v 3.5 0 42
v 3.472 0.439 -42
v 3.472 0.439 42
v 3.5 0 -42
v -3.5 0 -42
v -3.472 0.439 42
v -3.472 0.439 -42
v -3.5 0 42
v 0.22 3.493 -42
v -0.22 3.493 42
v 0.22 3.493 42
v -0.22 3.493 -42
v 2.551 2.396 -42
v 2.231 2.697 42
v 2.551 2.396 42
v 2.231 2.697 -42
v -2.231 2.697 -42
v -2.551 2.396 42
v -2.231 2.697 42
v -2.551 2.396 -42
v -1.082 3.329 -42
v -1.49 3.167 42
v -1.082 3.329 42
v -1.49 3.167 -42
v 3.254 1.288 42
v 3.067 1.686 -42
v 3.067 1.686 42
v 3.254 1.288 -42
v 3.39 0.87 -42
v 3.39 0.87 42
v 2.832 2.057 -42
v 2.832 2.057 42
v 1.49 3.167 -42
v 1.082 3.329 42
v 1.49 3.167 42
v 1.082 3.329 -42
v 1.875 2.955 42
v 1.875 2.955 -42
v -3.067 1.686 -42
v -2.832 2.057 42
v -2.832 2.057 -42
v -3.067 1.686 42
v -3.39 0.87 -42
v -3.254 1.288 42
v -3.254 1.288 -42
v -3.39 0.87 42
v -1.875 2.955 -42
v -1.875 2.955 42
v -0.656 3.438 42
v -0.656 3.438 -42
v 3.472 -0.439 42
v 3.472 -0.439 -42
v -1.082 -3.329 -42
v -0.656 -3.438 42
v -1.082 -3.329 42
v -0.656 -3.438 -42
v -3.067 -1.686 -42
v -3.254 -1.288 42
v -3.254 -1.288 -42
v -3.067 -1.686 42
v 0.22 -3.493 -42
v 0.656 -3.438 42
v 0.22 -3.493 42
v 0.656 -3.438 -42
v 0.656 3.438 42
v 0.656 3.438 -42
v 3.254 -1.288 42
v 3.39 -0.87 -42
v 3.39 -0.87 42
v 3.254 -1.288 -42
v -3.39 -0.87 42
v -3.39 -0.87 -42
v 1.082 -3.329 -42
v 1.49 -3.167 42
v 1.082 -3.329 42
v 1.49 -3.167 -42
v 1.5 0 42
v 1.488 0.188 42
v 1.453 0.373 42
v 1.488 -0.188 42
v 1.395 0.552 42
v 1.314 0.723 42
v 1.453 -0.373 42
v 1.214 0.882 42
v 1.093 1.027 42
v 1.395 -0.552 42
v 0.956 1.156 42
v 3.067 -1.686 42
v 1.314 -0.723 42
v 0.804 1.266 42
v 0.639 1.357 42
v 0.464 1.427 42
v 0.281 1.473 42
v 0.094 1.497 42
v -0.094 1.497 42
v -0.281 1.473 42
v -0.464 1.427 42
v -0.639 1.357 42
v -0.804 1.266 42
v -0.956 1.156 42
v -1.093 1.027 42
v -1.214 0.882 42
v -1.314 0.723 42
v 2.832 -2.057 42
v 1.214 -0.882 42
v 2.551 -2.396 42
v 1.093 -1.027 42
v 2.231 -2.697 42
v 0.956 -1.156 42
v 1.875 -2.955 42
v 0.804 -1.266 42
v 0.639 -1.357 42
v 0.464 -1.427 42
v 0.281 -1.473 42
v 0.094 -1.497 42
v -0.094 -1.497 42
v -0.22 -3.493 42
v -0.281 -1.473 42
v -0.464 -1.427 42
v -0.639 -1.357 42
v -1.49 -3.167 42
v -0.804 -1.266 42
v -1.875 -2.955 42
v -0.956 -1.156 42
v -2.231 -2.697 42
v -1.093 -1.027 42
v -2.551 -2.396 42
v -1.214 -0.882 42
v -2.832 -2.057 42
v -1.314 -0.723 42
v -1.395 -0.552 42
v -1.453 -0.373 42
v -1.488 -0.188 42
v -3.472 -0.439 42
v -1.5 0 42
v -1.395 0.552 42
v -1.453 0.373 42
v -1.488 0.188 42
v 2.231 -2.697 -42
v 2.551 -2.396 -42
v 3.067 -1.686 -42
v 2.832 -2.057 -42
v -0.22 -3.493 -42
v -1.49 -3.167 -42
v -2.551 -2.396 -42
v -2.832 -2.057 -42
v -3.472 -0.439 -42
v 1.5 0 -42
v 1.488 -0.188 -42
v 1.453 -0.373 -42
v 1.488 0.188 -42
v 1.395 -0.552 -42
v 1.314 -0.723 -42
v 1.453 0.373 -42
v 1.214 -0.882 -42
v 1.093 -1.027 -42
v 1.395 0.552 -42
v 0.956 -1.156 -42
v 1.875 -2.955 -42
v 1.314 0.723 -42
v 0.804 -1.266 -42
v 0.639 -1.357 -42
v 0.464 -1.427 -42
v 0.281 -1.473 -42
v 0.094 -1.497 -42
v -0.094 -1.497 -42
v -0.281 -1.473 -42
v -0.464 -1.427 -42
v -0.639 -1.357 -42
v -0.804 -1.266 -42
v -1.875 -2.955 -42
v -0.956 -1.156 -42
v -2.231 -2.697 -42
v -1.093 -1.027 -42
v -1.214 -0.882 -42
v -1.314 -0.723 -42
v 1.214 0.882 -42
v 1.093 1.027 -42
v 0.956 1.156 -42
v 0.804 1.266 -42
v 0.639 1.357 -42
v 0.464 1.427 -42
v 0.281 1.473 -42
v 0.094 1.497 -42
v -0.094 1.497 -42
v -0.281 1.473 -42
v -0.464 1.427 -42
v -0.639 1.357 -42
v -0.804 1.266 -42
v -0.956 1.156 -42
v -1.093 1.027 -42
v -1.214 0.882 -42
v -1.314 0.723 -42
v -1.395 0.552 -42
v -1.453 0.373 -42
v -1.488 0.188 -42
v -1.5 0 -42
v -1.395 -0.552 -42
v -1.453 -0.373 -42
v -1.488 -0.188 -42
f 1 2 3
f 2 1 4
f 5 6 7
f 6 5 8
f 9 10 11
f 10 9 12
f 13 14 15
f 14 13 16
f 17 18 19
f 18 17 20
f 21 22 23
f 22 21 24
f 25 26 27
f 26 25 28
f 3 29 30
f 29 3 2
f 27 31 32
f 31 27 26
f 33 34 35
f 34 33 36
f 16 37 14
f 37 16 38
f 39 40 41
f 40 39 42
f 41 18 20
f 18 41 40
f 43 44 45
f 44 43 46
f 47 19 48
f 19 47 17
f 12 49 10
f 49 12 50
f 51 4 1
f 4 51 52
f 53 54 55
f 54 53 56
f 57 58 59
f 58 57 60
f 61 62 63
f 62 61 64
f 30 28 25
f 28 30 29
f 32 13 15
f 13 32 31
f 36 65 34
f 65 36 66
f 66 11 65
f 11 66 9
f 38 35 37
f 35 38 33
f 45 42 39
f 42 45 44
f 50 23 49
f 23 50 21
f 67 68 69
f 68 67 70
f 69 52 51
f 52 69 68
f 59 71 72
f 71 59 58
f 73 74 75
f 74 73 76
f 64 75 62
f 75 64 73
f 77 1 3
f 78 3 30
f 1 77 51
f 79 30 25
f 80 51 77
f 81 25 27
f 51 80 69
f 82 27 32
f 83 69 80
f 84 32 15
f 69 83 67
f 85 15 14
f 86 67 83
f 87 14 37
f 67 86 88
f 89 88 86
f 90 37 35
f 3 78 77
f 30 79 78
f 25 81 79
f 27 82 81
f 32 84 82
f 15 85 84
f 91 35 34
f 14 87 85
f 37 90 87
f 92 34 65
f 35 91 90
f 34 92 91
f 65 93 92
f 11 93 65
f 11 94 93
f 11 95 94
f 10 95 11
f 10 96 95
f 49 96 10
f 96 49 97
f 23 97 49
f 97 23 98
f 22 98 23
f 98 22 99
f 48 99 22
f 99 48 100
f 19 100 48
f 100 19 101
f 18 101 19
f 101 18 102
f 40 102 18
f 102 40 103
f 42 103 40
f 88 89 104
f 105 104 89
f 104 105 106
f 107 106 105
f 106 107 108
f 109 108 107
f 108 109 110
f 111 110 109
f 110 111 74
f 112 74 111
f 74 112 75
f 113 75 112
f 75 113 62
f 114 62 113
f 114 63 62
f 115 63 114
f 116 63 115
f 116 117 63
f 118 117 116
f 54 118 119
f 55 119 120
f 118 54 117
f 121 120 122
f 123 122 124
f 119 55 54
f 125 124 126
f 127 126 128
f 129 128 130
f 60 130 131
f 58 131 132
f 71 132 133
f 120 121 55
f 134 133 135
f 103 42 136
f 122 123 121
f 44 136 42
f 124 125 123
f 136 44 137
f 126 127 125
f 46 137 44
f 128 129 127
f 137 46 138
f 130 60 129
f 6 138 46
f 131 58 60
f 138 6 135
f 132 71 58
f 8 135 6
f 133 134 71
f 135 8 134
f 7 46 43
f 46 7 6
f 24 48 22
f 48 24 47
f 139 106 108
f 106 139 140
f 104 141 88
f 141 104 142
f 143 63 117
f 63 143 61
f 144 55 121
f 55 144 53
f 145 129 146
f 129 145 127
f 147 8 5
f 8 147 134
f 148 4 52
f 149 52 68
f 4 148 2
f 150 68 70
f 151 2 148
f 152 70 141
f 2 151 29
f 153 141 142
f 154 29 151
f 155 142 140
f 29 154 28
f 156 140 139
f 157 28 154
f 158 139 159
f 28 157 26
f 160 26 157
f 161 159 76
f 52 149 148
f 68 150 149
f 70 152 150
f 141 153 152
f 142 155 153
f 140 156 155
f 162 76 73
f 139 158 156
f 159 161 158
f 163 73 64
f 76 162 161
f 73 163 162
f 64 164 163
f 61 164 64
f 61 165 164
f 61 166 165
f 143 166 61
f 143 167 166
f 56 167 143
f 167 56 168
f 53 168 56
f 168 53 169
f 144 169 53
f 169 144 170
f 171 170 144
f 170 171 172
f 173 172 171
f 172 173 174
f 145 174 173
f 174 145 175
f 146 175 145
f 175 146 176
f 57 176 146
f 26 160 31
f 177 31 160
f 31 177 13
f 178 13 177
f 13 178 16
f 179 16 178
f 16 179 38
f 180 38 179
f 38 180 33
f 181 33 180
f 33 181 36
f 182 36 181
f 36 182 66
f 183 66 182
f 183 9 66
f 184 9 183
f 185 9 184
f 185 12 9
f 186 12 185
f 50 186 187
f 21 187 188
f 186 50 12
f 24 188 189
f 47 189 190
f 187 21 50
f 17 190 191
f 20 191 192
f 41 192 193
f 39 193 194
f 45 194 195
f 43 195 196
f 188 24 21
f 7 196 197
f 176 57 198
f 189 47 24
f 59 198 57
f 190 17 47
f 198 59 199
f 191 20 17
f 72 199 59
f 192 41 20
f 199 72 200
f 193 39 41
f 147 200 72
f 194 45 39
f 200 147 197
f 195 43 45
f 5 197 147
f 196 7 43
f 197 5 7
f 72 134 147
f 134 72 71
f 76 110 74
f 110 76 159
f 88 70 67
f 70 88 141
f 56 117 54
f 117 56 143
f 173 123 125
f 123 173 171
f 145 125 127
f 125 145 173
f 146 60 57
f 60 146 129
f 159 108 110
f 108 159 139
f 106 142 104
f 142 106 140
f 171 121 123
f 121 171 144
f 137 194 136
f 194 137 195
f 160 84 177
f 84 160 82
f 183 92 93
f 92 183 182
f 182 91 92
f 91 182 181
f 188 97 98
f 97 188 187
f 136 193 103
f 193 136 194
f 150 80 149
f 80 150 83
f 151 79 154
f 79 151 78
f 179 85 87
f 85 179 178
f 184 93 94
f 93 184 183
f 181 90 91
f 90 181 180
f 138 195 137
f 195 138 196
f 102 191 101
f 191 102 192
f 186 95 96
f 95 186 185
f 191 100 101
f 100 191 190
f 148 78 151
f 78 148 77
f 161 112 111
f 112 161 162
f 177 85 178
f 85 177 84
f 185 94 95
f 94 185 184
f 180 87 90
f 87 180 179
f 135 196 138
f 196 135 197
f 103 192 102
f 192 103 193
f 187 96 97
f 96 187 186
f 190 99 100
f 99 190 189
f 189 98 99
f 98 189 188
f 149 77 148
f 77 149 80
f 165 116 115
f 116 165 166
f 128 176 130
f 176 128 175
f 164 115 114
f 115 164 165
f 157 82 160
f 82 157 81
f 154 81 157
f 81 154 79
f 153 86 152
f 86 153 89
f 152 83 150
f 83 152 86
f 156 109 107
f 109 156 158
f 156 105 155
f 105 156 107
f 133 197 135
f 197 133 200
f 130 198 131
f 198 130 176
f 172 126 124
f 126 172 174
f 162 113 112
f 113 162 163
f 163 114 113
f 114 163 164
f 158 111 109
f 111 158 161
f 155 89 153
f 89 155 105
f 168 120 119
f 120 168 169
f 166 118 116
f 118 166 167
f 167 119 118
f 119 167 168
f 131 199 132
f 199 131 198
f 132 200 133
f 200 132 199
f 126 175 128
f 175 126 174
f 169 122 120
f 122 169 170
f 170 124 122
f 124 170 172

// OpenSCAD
$fn = 50;


difference() {
	union() {
		translate(v = [0, 0, -42.0000000000]) {
			cylinder(h = 84, r = 3.5000000000);
		}
	}
	union() {
		translate(v = [0, 0, -100.0000000000]) {
			cylinder(h = 200, r = 1.5000000000);
		}
	}
}
